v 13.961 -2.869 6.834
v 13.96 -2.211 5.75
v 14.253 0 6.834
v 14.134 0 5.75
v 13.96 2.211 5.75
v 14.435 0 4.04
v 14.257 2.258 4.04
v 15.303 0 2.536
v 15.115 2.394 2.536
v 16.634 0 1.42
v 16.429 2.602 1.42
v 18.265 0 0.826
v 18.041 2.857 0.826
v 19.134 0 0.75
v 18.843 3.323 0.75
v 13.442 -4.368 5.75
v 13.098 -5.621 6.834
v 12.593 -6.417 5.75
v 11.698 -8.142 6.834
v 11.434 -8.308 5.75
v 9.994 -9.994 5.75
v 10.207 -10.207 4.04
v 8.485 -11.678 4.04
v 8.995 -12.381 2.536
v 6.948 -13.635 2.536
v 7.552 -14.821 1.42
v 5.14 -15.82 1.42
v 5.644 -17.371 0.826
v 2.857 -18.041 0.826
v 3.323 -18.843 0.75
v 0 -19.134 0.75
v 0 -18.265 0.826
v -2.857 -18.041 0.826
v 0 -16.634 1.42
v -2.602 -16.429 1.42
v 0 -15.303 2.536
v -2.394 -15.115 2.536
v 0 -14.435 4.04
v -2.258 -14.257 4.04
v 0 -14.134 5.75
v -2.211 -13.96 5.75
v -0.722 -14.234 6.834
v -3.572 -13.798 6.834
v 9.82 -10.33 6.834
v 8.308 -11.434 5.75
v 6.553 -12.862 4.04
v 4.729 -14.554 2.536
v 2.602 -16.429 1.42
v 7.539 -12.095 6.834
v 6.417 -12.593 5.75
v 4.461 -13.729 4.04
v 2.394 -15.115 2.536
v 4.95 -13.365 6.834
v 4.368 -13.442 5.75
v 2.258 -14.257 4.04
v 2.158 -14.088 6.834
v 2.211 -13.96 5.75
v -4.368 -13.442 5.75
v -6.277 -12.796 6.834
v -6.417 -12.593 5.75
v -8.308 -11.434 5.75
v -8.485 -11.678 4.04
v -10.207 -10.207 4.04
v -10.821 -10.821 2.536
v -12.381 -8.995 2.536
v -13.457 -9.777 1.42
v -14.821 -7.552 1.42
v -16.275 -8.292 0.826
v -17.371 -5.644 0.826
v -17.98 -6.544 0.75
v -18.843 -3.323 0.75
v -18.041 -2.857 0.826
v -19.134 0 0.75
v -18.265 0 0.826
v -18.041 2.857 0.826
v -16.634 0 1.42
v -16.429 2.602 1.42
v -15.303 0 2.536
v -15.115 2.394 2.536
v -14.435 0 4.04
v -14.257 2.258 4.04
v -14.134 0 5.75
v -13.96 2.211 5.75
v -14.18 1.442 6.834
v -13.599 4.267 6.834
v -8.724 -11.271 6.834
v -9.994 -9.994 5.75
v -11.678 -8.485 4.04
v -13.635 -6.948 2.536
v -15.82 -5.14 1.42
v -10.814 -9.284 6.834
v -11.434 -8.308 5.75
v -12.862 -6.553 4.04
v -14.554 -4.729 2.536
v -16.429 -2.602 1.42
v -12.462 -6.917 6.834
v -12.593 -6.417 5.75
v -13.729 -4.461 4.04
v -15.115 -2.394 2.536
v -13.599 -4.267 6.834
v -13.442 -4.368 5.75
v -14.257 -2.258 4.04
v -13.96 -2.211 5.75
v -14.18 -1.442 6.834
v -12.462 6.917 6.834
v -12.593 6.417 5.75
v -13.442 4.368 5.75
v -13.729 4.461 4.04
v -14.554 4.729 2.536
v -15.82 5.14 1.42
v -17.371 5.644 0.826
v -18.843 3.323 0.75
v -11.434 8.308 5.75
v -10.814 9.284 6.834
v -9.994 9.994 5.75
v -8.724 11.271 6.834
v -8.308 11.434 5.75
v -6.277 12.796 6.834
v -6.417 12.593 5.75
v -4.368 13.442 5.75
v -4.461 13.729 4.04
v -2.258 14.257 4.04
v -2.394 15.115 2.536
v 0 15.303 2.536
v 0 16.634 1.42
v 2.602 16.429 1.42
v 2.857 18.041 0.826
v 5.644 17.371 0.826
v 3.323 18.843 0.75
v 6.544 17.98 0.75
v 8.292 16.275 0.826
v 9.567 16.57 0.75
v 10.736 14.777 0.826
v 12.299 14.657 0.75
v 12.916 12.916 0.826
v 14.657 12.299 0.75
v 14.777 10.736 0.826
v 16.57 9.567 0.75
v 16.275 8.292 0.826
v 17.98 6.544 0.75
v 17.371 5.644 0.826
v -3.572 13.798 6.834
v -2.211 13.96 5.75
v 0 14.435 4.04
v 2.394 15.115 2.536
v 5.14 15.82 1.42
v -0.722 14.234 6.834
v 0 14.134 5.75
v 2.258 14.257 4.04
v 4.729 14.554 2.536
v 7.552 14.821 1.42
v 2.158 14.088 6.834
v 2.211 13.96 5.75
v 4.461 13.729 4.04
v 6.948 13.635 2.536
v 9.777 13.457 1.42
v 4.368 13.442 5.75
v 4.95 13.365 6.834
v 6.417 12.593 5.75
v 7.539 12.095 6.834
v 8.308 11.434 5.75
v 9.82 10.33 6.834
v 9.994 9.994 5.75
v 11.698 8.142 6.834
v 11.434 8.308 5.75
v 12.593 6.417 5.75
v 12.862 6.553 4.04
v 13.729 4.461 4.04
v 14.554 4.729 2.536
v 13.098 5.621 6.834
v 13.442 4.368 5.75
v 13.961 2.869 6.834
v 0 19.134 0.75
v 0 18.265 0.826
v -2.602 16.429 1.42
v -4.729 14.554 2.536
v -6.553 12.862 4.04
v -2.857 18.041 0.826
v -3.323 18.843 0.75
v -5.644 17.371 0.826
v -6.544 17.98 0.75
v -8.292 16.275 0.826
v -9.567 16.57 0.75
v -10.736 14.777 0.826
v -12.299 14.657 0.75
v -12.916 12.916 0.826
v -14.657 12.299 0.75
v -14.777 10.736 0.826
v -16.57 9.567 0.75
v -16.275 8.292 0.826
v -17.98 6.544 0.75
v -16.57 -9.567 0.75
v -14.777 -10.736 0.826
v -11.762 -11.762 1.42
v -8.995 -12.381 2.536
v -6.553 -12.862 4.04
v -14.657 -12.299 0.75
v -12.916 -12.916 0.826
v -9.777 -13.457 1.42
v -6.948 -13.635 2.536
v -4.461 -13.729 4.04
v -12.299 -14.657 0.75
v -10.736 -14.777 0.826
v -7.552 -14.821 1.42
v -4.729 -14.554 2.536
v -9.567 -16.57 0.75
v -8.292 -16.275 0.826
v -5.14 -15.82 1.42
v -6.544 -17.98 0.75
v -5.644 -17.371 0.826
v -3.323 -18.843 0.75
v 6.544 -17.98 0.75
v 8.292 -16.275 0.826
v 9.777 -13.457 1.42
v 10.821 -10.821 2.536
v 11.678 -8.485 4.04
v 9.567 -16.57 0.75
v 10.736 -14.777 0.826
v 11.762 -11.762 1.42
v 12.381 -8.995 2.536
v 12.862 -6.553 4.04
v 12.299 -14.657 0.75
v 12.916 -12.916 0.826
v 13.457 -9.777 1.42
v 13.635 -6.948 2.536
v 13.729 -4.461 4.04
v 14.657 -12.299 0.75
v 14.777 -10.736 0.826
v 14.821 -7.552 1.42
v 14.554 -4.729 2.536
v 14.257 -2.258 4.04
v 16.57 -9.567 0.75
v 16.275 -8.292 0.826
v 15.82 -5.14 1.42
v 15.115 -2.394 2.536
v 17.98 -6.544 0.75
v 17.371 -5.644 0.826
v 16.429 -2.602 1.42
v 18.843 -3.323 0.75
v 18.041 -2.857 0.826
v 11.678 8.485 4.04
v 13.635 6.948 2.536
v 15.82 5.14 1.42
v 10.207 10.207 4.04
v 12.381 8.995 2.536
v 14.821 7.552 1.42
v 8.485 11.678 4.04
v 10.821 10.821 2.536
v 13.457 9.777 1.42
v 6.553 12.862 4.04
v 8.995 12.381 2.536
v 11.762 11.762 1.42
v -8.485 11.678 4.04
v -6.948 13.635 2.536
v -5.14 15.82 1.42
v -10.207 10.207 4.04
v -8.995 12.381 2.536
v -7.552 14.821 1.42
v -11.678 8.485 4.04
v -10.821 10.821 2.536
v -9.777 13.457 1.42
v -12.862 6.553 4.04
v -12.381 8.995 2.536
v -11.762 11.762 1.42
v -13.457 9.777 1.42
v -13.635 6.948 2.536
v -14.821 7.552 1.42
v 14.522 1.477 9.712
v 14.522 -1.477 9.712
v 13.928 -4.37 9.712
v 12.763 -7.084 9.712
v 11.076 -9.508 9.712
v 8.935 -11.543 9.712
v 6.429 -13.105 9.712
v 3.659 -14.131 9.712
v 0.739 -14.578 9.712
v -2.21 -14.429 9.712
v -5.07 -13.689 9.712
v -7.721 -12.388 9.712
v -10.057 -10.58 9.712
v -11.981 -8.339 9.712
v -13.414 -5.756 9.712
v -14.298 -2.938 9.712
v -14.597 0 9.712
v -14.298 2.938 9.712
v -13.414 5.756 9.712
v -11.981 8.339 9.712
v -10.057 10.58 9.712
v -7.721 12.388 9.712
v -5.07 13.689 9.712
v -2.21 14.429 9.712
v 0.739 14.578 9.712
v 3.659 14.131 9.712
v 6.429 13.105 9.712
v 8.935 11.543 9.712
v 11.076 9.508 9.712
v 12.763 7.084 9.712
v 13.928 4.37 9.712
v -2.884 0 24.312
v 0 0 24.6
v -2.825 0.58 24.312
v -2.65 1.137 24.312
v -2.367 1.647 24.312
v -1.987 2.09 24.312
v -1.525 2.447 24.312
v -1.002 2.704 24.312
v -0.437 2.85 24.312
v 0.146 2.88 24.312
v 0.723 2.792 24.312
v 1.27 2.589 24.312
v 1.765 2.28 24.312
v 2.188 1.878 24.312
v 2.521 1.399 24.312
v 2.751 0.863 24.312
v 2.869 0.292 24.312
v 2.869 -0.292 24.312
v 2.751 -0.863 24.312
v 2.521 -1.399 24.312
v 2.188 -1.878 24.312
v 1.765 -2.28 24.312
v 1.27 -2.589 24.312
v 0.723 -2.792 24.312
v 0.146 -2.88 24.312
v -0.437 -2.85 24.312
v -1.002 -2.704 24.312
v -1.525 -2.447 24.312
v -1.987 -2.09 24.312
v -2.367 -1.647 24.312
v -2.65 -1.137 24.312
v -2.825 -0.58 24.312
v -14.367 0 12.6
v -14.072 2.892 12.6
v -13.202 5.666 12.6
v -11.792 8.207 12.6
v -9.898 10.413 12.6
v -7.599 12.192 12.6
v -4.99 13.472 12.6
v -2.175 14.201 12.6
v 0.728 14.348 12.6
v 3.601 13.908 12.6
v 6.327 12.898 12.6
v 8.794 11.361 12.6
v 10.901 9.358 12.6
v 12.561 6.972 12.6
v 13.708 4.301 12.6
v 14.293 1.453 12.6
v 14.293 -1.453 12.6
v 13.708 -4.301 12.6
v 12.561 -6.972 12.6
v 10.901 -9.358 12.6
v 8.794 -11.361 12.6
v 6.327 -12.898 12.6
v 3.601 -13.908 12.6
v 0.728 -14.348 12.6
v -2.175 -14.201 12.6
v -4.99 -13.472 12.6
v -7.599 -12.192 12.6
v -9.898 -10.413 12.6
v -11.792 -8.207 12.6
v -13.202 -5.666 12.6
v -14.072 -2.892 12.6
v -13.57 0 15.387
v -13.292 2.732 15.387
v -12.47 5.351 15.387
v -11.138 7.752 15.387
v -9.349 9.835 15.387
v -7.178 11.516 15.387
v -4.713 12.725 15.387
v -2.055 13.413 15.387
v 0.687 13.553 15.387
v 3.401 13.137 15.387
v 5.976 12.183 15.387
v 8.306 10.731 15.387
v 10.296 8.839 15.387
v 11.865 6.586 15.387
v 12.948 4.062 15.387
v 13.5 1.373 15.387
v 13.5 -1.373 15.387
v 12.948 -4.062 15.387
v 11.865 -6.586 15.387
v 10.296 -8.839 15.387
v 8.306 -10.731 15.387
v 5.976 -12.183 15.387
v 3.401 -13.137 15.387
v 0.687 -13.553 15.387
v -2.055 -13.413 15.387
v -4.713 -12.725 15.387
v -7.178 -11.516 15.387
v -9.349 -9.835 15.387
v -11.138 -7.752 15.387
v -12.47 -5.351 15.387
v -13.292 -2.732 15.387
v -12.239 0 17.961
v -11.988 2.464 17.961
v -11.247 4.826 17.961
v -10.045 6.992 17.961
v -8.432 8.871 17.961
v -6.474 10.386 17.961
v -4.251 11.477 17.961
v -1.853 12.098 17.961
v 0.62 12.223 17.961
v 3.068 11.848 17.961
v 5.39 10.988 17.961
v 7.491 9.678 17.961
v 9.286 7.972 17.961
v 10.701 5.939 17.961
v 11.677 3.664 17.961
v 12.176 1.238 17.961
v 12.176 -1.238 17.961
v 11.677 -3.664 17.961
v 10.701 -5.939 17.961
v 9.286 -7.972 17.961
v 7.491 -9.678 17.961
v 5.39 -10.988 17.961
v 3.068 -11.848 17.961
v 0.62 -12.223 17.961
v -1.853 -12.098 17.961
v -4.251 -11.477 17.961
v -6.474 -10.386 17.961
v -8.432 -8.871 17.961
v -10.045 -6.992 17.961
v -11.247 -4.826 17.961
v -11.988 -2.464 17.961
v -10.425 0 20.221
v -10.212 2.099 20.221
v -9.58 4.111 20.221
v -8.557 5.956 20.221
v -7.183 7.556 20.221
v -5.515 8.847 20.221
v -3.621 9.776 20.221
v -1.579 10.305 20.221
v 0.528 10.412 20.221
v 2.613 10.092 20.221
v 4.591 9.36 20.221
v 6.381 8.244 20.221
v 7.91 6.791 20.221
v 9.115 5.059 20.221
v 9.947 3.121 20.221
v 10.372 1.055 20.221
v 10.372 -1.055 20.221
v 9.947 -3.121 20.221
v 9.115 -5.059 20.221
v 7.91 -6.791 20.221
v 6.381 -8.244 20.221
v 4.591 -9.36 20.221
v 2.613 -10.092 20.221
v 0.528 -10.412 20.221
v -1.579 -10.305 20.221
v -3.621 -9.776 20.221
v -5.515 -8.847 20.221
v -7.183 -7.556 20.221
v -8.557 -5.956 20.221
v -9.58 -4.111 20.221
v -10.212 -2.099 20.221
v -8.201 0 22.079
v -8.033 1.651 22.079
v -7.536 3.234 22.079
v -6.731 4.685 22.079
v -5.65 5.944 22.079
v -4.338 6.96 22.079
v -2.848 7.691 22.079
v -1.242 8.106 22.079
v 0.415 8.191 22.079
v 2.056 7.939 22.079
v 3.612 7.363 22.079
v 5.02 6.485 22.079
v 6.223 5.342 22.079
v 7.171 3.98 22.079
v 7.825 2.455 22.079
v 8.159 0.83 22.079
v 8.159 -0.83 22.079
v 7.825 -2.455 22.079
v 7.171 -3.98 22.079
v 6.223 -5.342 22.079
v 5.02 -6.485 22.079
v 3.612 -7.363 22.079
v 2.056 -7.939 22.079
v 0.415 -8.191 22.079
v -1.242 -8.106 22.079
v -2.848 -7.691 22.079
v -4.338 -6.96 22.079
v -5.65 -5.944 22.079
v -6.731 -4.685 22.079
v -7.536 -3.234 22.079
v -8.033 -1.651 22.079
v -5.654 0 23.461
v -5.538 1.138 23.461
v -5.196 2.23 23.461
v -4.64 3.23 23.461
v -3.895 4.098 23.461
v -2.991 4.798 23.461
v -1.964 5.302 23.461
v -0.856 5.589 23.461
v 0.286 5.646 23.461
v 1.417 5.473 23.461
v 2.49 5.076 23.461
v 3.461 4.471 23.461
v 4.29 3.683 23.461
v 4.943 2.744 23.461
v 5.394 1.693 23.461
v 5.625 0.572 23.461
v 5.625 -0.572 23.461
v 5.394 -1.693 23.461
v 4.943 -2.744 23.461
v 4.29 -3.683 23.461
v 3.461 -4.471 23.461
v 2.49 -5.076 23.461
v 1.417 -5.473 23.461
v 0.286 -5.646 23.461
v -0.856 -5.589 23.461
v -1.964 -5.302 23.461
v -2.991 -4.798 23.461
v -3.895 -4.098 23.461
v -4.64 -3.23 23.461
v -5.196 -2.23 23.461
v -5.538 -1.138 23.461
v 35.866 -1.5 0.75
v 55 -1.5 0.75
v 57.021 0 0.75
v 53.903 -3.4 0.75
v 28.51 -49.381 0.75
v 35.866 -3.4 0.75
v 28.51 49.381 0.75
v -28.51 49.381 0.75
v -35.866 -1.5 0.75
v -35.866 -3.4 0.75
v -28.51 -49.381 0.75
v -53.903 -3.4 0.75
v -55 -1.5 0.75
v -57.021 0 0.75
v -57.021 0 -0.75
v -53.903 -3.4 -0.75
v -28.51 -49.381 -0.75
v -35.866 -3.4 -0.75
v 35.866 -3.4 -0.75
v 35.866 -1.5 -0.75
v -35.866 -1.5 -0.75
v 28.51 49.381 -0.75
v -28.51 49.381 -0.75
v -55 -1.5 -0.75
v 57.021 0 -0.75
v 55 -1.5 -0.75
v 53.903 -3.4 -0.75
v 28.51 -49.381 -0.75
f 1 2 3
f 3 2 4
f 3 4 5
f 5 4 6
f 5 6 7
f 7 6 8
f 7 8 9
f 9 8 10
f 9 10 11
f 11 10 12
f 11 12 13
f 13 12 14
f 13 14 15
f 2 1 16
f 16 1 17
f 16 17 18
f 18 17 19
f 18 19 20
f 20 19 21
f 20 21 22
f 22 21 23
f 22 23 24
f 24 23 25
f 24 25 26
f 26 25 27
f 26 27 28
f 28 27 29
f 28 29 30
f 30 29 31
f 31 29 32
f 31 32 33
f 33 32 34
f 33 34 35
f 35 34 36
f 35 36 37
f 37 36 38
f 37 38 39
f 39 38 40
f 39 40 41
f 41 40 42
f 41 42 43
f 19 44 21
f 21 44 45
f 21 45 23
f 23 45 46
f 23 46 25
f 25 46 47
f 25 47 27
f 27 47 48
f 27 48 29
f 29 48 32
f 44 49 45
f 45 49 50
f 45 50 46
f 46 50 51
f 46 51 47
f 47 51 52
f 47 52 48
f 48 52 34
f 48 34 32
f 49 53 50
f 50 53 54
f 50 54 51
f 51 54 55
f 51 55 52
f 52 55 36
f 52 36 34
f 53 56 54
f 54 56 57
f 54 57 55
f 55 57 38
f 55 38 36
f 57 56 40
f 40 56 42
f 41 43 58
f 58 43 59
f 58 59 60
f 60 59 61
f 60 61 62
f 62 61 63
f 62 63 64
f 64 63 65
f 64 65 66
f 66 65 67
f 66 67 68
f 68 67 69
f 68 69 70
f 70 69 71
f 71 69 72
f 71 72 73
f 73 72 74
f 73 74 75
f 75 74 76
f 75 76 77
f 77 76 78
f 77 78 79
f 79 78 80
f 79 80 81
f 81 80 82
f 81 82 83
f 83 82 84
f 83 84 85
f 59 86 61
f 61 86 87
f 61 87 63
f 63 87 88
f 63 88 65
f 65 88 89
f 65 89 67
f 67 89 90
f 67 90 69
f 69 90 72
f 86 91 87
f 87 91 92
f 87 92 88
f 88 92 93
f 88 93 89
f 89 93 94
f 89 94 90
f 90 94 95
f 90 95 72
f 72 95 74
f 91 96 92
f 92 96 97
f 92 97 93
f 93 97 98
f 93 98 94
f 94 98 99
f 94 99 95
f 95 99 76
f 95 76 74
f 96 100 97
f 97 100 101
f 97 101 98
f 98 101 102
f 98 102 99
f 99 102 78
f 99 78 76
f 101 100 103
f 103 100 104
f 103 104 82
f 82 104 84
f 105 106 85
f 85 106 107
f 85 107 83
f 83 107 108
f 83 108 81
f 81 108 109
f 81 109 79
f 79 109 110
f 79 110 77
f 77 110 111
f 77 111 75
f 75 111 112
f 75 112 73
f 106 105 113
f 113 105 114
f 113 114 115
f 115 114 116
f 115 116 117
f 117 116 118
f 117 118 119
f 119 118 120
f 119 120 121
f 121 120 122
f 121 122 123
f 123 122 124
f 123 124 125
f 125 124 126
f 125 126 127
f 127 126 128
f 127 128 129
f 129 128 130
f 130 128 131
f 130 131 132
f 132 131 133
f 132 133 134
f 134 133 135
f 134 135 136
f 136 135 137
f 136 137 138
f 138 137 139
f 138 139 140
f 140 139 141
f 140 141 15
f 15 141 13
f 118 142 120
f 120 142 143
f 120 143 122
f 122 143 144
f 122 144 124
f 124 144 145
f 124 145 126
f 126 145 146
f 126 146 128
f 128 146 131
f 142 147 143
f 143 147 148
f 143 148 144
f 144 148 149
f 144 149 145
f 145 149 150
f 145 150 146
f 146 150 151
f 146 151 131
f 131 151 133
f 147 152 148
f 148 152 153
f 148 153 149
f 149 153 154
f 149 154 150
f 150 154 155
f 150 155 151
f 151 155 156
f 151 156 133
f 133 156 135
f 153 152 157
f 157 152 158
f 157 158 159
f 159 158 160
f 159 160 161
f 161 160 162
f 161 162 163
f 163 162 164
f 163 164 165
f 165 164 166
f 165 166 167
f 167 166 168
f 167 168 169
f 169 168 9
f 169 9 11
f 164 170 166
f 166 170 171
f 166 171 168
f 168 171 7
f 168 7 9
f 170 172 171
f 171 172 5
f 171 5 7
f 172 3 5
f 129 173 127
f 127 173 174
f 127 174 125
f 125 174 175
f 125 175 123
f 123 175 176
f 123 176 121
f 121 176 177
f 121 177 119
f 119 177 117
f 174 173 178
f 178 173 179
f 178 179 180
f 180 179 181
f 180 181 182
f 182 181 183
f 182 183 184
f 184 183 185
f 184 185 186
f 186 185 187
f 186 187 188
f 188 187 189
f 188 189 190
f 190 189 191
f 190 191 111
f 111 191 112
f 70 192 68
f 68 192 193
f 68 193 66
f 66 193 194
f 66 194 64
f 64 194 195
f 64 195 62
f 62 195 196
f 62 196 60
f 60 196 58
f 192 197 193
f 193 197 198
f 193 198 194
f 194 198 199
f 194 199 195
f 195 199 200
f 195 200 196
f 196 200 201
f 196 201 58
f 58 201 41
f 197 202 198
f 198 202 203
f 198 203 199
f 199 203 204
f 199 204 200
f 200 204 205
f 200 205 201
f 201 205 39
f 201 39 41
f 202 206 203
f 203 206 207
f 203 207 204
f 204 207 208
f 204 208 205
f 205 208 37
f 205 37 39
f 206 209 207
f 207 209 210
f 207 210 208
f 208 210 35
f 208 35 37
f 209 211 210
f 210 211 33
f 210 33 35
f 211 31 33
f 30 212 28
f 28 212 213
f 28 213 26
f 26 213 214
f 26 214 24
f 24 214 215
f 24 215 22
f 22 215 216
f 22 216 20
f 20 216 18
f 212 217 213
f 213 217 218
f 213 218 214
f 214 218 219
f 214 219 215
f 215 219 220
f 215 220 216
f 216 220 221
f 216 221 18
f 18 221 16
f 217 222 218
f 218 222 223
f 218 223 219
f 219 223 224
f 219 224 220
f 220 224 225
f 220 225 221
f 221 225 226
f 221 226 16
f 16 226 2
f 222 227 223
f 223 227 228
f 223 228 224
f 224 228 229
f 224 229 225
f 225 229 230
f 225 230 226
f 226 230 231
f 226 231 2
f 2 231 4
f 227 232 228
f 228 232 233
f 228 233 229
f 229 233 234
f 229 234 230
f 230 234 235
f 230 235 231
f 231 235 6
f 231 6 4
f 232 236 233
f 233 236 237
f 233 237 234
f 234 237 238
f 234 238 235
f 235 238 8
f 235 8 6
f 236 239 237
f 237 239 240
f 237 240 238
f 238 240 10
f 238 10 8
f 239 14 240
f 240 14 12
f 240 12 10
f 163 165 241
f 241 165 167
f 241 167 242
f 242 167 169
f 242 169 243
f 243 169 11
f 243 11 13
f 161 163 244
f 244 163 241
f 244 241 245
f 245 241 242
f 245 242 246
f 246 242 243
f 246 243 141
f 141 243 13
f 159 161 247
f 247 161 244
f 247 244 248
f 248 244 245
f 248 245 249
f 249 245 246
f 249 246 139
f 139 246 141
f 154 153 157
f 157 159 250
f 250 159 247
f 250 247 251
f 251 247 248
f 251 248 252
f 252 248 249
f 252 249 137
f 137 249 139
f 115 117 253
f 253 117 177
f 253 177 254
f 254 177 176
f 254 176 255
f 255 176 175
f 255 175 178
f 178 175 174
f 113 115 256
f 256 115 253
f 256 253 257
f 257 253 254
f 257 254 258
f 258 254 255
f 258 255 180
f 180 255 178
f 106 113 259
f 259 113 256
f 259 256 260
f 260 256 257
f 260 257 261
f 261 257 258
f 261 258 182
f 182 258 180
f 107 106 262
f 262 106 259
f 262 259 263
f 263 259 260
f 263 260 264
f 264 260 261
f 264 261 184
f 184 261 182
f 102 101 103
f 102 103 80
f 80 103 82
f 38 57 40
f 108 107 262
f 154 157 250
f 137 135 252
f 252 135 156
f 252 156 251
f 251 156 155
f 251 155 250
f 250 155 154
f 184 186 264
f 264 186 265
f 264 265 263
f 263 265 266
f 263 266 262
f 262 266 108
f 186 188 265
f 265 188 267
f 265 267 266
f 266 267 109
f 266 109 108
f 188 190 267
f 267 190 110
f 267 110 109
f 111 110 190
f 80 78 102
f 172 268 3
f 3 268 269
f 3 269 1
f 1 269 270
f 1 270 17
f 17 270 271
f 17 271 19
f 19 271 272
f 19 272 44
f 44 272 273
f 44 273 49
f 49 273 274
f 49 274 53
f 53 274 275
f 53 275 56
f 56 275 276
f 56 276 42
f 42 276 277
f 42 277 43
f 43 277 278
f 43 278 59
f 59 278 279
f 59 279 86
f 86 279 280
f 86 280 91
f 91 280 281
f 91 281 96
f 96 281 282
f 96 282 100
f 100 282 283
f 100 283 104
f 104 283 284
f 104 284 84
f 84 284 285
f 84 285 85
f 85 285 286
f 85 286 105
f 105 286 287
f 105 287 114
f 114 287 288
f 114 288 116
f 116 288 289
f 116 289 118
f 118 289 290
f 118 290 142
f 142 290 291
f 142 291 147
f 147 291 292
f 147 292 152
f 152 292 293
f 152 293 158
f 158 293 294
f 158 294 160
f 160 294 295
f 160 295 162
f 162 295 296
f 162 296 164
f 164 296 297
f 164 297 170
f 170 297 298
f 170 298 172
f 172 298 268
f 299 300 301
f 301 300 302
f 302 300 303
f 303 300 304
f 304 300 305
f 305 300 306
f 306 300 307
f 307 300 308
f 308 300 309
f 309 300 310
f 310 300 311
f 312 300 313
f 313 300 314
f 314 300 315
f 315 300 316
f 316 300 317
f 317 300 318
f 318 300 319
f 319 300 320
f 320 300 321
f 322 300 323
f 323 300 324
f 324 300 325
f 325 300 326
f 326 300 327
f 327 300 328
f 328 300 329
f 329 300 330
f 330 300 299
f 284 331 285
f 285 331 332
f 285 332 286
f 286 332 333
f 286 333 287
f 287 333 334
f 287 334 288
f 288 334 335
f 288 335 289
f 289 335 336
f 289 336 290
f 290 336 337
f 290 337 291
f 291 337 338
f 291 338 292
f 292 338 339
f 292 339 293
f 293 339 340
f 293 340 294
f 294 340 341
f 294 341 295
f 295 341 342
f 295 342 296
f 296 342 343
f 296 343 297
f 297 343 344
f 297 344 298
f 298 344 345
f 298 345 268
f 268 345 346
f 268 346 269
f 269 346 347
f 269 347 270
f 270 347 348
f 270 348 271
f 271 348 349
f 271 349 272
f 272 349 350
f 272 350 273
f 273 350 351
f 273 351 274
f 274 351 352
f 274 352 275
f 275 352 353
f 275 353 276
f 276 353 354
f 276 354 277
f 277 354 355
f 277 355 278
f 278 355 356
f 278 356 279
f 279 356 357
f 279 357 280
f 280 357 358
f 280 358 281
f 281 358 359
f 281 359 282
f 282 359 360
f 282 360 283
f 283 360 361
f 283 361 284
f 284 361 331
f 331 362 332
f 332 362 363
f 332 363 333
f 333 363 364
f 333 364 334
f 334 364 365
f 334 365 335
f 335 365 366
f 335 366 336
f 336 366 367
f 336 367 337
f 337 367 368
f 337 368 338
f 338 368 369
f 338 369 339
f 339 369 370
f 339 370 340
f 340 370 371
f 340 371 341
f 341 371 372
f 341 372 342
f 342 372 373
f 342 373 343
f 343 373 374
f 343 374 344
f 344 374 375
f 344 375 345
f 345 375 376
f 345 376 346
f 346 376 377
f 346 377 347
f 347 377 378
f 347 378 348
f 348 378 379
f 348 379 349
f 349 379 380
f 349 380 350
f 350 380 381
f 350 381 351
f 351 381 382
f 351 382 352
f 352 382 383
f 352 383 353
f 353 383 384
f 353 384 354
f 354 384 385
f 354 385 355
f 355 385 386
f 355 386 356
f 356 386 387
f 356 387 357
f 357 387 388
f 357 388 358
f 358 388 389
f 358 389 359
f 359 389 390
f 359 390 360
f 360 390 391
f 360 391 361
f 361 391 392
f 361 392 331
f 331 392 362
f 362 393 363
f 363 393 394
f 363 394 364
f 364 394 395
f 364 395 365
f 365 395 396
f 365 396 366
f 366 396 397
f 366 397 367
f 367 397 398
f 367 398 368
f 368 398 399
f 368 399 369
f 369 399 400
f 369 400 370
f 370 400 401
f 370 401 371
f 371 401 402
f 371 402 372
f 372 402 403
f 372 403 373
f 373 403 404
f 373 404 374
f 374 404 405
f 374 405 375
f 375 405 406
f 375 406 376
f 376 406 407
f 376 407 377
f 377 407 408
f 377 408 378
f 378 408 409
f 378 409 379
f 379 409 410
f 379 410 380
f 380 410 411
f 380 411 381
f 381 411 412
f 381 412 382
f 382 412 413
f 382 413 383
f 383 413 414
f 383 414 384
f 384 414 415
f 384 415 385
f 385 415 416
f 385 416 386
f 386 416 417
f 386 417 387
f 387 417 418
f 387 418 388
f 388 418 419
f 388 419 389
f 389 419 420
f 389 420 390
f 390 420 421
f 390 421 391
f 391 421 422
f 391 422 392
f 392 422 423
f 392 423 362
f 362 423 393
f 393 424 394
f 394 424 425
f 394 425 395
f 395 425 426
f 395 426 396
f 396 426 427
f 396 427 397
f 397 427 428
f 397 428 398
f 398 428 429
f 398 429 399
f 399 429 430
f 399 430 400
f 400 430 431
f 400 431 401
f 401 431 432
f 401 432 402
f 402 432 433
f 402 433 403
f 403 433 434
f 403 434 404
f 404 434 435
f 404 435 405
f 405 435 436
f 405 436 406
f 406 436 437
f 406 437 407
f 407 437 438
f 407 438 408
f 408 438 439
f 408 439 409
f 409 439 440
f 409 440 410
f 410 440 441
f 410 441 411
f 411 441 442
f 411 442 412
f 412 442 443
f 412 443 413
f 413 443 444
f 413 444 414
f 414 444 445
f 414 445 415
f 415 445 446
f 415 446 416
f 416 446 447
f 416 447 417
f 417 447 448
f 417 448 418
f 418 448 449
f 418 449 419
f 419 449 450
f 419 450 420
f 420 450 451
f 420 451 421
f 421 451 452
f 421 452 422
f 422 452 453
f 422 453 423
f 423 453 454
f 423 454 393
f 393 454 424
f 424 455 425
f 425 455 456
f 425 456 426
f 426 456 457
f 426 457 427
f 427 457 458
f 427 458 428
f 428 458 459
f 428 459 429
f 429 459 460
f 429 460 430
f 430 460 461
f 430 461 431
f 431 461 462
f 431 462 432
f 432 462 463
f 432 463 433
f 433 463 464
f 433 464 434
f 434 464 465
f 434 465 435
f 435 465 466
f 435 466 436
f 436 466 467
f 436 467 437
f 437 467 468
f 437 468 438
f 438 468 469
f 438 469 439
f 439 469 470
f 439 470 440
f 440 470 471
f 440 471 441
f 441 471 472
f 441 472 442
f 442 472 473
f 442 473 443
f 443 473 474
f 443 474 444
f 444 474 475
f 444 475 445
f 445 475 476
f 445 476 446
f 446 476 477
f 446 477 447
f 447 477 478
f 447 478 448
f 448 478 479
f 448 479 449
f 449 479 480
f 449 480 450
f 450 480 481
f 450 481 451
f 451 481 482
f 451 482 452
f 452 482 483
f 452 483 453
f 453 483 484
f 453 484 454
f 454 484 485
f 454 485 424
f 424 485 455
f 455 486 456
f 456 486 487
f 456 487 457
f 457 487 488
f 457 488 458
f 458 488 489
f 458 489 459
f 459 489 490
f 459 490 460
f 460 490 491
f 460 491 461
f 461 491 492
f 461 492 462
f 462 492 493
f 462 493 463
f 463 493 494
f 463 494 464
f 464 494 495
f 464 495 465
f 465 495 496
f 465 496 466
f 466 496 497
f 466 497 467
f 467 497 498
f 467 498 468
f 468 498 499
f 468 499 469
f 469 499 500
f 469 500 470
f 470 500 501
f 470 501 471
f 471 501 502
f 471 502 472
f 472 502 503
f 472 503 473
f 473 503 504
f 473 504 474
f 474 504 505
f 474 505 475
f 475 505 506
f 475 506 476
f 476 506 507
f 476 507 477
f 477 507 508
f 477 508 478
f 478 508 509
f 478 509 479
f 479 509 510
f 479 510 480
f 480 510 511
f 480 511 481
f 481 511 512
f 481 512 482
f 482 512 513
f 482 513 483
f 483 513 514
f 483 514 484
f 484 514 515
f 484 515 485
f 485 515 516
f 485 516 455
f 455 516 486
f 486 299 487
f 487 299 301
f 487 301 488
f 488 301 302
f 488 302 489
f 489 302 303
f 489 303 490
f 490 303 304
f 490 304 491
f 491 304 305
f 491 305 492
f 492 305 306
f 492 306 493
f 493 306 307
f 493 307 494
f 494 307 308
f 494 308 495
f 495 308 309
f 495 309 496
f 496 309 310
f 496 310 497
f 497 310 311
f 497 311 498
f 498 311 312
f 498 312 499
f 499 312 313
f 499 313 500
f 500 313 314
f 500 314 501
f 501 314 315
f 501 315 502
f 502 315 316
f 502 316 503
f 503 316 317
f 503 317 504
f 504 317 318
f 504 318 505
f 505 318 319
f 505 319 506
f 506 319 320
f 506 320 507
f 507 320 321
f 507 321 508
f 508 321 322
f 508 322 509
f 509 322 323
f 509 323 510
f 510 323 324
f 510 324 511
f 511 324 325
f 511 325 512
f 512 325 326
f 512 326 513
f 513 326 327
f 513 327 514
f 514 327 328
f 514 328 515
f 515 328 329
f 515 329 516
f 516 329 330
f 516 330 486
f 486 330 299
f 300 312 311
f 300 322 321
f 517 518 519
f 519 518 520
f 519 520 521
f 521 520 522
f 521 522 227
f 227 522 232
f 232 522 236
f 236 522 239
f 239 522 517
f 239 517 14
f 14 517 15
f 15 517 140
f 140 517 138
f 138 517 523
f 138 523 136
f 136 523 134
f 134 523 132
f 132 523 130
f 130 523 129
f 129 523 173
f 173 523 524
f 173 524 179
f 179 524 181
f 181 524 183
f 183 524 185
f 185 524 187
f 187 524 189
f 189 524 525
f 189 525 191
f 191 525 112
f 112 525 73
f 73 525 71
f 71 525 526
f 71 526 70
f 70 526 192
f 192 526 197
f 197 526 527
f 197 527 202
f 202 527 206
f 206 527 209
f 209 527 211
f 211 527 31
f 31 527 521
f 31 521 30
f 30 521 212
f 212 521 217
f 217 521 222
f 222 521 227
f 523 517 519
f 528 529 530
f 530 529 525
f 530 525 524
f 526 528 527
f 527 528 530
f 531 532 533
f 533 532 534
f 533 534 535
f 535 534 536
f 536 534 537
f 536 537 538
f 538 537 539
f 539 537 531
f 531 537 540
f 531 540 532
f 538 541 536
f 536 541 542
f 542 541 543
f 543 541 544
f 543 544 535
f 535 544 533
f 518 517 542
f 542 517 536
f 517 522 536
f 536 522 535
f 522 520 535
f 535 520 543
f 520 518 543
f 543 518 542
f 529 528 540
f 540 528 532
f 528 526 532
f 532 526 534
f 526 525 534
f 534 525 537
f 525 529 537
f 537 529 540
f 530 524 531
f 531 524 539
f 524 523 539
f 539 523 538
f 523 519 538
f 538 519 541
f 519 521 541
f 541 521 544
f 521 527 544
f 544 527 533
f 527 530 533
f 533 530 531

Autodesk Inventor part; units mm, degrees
ref_plane "YZ Plane" through (0, 0, 0) normal (1, 0, 0) x (0, 1, 0)
ref_plane "XZ Plane" through (0, 0, 0) normal (0, 1, 0) x (-1, 0, 0)
ref_plane "XY Plane" through (0, 0, 0) normal (0, 0, 1) x (1, 0, 0)
sketch "Sketch2" plane through (0, 0, 0) normal (0, 0, 1) x (1, 0, 0)
  line L0 (27.933, -48.3814) -> (-27.933, -48.3814)
  line L1 (-27.933, -48.3814) -> (-55.866, 0)
  line L2 (-55.866, 0) -> (-27.933, 48.3814)
  line L3 (-27.933, 48.3814) -> (27.933, 48.3814)
  line L4 (27.933, 48.3814) -> (55.866, 0)
  line L5 (55.866, 0) -> (27.933, -48.3814)
  line L6 (-28.5104, 49.3814) -> (-57.0207, 0)
  line L7 (-57.0207, 0) -> (-28.5104, -49.3814)
  line L8 (-28.5104, -49.3814) -> (28.5104, -49.3814)
  line L9 (28.5104, -49.3814) -> (57.0207, 0)
  line L10 (57.0207, 0) -> (28.5104, 49.3814)
  line L11 (28.5104, 49.3814) -> (-28.5104, 49.3814)
  line L12 (0, -48.3814) -> (0, 48.3814) construction
  line L13 (-55, -1.5) -> (-35.866, -1.5)
  line L14 (-35.866, -1.5) -> (-35.866, -3.4)
  line L15 (-35.866, -3.4) -> (-53.903, -3.4)
  line L16 (55, -1.5) -> (35.866, -1.5)
  line L17 (35.866, -1.5) -> (35.866, -3.4)
  line L18 (35.866, -3.4) -> (53.903, -3.4)
  point P0 (0, 0)
  point P1 (0, 0)
  point P2 (53.903, -3.4)
  point P3 (55, -1.5)
  dimension "d10" = 1
  dimension "d13" = 1.9
  dimension "d14" = 20
  dimension "d15" = 1.5
  dimension "d28" = 110
extrude "Extrusion2" add sketch "Sketch2" along normal mid plane 1.5 contours L0 L1 L15 L14 L13 L2 L3 L4 L5 L16 L17 L18 | L11 L10 L9 L8 L7 L6
sketch "Sketch5" plane through (0, 0, 0) normal (0, 1, 0) x (-1, 0, 0)
  line L0 (0, 0) -> (-10.6377, 0)
  line L1 (-10.6377, 0) -> (-7.4876, 0)
  line L2 (0, 0) -> (0, 10)
  arc A0 (10.6377, 0) -> (-10.6377, 0) centre (0, 10) ccw
  line L3 (0, 0) -> (10.6377, 0)
  line L4 (28.5104, 0.75) -> (-28.5104, 0.75) projected
  line L5 (0, 0.75) -> (0, 24.6)
  point P0 (-11.2959, 0.75)
  point P1 (0, 0.75)
  dimension "d29" = 10
  dimension "d30" = 14.6
revolve "Revolution3" add sketch "Sketch5" angle 360 about axis through (0, 0, 0.75) along (0, 0, 1) picked at (-3.7653, 3.8333) contours L4 A0 L5 L2
fillet "Fillet2" radius 5 1 edges at (-11.2959, 0, 0.75)
properties part number "CUERPO_ABEJA"
